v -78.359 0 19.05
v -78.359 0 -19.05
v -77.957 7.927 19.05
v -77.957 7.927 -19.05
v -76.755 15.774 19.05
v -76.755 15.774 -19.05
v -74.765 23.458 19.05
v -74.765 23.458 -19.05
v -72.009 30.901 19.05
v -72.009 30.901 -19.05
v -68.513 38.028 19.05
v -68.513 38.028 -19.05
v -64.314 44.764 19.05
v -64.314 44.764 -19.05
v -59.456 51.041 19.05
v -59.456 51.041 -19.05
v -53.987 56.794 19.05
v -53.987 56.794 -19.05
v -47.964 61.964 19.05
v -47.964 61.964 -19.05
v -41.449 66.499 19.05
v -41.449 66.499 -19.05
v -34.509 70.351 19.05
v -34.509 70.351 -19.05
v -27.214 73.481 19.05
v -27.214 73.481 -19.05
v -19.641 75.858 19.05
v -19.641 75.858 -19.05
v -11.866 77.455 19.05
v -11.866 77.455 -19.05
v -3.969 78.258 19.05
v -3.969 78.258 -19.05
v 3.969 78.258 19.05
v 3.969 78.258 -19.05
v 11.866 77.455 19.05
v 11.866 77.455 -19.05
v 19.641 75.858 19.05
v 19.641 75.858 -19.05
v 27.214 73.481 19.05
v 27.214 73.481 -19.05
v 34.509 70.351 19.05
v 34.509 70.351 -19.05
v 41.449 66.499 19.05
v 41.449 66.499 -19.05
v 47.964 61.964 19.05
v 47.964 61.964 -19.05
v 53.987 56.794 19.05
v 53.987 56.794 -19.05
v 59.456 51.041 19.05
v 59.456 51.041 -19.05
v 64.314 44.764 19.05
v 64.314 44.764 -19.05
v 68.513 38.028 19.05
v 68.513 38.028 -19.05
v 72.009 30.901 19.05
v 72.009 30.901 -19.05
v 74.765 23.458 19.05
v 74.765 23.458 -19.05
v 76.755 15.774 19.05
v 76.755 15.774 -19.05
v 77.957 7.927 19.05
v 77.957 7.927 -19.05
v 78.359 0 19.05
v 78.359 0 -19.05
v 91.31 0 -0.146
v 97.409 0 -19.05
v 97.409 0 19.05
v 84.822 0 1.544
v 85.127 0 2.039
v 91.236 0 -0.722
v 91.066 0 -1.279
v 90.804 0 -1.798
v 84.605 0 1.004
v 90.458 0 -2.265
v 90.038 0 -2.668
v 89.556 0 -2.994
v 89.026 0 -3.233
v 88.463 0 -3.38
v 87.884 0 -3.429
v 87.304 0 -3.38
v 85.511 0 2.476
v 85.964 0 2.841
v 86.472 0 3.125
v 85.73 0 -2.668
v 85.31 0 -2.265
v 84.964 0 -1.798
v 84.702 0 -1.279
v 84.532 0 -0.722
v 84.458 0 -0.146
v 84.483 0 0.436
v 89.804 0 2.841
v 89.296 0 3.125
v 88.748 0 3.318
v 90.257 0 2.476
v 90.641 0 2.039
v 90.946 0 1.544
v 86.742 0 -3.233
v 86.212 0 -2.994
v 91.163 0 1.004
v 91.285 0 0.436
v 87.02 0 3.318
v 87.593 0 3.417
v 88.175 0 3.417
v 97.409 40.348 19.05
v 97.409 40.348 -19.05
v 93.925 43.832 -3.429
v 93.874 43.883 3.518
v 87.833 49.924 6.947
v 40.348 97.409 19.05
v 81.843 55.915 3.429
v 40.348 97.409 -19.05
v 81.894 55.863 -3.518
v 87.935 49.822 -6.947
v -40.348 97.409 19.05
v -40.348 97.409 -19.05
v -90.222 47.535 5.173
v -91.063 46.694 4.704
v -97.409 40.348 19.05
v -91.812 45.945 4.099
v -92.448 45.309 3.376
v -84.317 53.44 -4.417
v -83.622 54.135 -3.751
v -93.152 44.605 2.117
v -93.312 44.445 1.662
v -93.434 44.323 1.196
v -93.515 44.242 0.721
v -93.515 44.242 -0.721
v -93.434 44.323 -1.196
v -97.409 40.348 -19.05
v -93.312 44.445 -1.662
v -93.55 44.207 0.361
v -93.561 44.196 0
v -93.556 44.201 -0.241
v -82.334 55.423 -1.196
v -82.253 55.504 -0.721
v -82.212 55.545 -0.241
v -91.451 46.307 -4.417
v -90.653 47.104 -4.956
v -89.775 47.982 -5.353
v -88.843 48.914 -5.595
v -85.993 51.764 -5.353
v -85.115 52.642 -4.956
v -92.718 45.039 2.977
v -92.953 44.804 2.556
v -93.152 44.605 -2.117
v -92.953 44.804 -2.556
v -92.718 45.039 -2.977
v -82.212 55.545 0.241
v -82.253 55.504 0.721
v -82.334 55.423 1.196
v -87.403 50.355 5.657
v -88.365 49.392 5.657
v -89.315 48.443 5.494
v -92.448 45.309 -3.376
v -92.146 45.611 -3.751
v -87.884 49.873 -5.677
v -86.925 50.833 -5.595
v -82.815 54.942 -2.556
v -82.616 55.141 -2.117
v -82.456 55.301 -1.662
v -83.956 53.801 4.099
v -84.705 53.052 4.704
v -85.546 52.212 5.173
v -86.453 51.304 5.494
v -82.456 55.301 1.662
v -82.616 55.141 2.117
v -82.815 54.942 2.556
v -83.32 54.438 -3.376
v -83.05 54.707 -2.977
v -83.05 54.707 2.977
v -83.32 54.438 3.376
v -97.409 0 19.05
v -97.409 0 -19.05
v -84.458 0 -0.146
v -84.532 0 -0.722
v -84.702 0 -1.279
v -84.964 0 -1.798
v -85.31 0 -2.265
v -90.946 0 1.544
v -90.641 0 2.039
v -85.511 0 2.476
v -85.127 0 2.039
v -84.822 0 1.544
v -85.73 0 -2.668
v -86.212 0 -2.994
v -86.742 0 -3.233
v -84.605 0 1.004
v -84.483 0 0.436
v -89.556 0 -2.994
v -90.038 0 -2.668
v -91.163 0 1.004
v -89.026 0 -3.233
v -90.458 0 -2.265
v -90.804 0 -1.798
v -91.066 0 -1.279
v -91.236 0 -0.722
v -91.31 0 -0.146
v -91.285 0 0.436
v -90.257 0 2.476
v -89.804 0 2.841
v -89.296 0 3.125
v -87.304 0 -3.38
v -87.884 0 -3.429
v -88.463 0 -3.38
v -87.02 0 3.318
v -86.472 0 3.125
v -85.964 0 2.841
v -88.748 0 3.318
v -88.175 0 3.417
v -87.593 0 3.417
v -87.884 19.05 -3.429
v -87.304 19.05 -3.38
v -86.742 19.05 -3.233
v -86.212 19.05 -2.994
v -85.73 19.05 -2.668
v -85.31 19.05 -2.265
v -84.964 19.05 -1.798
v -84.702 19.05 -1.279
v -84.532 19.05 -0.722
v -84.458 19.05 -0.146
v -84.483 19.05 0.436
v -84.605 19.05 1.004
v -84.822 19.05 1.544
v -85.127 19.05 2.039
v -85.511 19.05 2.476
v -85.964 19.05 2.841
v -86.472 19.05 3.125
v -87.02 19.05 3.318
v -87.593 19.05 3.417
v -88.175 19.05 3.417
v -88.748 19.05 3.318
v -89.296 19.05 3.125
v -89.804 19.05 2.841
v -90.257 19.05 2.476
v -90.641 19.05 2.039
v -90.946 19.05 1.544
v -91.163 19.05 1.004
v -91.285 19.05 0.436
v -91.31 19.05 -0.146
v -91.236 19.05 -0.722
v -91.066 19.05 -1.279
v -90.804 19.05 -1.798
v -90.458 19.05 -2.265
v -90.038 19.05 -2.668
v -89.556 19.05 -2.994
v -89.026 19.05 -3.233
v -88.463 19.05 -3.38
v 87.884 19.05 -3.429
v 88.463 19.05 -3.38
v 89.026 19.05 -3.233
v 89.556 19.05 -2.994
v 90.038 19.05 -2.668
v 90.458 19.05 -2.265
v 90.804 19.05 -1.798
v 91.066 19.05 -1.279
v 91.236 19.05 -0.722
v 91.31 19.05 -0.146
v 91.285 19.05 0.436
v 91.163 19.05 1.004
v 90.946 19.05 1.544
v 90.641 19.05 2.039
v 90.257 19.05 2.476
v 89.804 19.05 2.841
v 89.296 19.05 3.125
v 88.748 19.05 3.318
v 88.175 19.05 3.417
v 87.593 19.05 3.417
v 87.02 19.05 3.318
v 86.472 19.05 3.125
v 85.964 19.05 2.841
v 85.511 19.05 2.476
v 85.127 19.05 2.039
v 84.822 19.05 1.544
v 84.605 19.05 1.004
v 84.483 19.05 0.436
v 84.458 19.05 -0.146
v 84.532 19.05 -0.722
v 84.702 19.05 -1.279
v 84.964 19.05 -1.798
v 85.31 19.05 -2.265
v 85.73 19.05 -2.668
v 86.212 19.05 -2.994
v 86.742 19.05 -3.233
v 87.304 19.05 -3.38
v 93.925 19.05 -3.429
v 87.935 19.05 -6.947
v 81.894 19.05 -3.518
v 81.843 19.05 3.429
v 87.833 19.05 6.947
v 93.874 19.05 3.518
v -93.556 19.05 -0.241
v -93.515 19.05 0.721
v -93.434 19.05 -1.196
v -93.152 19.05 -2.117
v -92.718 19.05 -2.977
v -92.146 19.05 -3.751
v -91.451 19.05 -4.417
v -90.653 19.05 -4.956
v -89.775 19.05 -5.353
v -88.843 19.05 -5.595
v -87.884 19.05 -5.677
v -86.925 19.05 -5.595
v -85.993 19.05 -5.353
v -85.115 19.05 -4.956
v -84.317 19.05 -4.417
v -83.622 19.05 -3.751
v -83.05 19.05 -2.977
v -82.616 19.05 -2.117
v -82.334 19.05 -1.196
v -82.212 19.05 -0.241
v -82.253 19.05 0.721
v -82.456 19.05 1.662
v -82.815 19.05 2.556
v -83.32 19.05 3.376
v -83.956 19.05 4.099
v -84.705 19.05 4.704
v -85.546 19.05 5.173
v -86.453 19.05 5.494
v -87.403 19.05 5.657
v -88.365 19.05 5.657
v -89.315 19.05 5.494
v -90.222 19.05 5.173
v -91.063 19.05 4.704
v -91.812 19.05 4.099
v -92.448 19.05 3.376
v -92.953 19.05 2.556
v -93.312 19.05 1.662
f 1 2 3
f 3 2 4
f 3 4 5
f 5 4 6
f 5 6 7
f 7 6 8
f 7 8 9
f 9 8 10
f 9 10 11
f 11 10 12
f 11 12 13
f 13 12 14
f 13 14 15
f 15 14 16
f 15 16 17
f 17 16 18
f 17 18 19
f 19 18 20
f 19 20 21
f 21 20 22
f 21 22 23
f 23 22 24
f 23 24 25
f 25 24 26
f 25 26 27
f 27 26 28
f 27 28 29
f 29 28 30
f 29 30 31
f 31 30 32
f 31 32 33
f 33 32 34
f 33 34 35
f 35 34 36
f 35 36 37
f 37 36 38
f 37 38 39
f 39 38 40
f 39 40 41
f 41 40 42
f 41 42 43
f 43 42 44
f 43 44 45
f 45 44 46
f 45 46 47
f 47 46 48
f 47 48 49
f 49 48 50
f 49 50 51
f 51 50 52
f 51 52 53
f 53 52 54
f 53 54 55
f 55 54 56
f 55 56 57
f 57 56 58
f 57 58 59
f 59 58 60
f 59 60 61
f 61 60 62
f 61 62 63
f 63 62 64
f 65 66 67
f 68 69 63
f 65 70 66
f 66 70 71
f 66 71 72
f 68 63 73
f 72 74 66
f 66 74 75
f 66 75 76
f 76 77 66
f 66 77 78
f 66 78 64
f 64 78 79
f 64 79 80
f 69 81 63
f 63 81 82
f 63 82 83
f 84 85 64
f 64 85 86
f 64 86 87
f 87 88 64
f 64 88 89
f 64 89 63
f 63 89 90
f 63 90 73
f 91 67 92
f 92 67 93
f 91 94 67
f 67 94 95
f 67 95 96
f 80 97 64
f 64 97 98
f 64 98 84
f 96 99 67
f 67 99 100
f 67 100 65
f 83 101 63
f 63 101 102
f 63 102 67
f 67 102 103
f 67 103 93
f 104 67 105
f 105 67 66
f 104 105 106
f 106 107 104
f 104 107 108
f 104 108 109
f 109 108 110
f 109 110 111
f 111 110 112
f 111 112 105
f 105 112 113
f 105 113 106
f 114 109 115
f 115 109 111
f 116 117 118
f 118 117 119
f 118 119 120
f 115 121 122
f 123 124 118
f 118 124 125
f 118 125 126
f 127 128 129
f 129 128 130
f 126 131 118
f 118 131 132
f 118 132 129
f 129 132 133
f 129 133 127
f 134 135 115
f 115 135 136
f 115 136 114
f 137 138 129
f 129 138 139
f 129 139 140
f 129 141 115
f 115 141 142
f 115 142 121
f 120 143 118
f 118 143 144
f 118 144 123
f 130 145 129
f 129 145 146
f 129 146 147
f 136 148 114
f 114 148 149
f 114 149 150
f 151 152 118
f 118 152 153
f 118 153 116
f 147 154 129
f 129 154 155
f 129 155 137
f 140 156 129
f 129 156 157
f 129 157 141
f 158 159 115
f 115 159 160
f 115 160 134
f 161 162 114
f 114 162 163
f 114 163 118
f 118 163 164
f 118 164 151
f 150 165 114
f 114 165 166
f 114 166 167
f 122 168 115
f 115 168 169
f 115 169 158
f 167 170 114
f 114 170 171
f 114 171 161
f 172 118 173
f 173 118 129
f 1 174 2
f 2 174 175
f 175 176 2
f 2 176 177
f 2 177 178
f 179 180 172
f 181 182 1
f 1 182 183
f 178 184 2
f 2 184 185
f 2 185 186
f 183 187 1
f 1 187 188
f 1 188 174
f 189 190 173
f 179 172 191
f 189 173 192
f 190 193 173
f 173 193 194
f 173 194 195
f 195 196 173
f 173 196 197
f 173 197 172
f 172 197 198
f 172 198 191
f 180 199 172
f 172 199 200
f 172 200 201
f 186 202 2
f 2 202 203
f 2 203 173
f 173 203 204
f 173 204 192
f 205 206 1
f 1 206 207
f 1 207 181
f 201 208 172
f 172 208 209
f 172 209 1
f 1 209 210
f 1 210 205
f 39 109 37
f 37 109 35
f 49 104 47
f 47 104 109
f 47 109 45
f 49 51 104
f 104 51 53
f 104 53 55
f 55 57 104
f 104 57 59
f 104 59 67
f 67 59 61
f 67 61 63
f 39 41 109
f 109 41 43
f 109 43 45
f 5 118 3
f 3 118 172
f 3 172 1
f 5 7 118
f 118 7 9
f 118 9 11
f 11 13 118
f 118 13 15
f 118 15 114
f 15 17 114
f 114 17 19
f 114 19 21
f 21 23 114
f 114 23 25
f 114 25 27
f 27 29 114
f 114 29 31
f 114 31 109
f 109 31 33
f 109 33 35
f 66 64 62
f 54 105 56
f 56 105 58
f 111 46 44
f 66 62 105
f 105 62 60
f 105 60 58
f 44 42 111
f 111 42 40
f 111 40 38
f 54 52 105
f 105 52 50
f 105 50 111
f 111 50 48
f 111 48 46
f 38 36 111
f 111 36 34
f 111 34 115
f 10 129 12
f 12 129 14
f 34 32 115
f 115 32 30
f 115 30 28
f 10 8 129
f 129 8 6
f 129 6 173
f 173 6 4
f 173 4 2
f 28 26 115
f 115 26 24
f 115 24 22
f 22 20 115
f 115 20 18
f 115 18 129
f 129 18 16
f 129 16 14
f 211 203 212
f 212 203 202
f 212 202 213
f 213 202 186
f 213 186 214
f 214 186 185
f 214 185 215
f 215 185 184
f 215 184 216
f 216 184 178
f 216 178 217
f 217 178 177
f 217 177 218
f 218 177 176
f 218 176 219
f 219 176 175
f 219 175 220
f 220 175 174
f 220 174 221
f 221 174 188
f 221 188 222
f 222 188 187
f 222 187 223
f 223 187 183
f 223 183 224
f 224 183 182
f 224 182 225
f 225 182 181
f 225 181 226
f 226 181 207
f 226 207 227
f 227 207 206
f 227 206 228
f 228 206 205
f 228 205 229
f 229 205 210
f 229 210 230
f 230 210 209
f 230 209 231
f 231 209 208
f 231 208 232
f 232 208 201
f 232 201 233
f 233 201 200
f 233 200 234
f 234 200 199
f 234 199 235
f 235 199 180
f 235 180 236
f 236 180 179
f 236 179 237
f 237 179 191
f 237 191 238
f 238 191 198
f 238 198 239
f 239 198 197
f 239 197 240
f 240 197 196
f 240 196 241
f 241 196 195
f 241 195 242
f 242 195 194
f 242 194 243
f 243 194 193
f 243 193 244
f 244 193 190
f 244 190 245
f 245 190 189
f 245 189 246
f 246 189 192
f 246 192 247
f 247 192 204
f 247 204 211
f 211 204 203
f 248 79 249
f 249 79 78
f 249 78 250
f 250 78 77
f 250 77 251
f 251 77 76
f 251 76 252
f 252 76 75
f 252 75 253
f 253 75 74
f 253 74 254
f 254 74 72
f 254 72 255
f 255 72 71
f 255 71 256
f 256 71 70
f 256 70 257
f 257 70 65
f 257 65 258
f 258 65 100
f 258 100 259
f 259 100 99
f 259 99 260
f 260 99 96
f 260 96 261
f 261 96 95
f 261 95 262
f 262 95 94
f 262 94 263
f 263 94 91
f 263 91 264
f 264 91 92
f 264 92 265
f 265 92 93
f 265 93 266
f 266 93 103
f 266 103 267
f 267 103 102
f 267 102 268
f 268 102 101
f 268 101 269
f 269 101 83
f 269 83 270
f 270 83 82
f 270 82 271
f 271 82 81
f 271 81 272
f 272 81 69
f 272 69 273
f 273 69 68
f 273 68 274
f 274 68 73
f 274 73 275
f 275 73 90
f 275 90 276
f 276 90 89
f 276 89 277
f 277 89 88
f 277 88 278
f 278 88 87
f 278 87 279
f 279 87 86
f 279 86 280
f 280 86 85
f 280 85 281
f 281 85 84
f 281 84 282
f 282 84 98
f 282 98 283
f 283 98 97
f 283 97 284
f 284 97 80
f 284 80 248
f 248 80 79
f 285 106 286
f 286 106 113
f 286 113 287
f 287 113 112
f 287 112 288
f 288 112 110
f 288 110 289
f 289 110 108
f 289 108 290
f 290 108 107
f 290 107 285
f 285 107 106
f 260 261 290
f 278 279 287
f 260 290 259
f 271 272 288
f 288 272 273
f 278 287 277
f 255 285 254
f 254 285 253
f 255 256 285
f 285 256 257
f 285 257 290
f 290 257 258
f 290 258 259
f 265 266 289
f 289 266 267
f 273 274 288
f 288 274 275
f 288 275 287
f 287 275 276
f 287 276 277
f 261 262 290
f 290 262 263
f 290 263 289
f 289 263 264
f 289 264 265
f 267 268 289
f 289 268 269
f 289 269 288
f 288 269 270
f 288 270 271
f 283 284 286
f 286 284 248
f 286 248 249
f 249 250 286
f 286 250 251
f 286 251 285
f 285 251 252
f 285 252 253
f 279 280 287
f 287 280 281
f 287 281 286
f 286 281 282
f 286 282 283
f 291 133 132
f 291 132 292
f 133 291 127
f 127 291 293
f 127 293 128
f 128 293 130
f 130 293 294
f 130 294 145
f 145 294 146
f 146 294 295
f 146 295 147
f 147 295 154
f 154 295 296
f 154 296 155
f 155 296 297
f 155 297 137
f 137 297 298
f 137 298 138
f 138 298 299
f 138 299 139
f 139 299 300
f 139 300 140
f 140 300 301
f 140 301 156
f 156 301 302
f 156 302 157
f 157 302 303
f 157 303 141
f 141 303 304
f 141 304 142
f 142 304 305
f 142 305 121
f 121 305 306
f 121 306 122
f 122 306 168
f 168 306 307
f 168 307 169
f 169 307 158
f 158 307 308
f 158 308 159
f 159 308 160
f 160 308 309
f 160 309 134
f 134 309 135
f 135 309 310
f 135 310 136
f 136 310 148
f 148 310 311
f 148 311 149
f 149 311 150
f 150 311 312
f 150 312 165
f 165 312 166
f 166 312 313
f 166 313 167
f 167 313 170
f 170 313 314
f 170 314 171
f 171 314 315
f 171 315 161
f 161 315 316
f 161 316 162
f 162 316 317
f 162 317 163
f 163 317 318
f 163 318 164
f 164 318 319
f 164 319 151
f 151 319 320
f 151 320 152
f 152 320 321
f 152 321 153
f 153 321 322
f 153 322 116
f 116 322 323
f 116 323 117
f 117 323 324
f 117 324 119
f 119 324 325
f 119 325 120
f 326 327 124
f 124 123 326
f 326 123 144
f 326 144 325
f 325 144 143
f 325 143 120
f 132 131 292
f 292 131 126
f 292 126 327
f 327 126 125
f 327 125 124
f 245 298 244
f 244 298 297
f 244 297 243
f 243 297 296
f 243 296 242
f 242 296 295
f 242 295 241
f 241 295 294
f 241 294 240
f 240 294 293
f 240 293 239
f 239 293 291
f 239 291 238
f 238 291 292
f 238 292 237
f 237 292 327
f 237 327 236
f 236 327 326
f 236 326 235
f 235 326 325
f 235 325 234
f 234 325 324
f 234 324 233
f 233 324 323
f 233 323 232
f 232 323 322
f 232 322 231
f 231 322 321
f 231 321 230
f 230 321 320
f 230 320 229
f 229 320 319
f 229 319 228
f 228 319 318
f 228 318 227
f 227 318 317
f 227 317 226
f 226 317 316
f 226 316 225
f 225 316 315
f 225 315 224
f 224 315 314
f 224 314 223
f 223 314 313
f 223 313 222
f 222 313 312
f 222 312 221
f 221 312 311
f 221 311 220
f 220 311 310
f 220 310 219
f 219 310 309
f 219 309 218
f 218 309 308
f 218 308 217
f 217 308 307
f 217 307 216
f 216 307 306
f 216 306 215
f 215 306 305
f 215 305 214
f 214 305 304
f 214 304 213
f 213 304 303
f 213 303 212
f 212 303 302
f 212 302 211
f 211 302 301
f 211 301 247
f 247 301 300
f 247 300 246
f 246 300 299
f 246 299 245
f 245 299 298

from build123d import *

# Parameters (mm, degrees)
BOSS_EXTRUDE1_DEPTH = 19.05
SKETCH2_R           = 3.429
CUT_EXTRUDE2_DEPTH  = 98.409
SKETCH4_R           = 5.677154031
CUT_EXTRUDE3_DEPTH  = 79.359


with BuildPart() as part:
    # Sketch1 → Boss-Extrude1 (new body, symmetric)
    with BuildSketch(Plane.XY):
        with BuildLine():
            Line((-78.359, 0), (-97.409, 0))
            Line((-97.409, 0), (-97.409, 40.348128897))
            Line((-97.409, 40.348128897), (-40.348128897, 97.409))
            Line((-40.348128897, 97.409), (40.348128897, 97.409))
            Line((40.348128897, 97.409), (97.409, 40.348128897))
            Line((97.409, 40.348128897), (97.409, 0))
            Line((97.409, 0), (78.359, 0))
            ThreePointArc((78.359, 0), (0, 78.359), (-78.359, 0))
        make_face()
    extrude(amount=BOSS_EXTRUDE1_DEPTH, both=True)

    # Sketch2 → Cut-Extrude2 (cut, through all)
    with BuildSketch(Plane.XZ):
        with Locations((87.884, 0)):
            Circle(SKETCH2_R)
        with Locations((-87.884, 0)):
            Circle(SKETCH2_R)
    extrude(amount=-CUT_EXTRUDE2_DEPTH, mode=Mode.SUBTRACT)

    # Sketch4 → Cut-Extrude3 (cut, through all)
    with BuildSketch(Plane(origin=(0, 19.05, 0), x_dir=(-1, 0, 0), z_dir=(0, -1, 0))):
        with Locations((87.884, 0)):
            Circle(SKETCH4_R)
        Polygon((-93.925417492, 3.429), (-93.874309855, -3.517521023), (-87.832892364, -6.946521023), (-81.842582508, -3.429), (-81.893690145, 3.517521023), (-87.935107636, 6.946521023), align=None)
    extrude(amount=-CUT_EXTRUDE3_DEPTH, mode=Mode.SUBTRACT)


solid = part.part
